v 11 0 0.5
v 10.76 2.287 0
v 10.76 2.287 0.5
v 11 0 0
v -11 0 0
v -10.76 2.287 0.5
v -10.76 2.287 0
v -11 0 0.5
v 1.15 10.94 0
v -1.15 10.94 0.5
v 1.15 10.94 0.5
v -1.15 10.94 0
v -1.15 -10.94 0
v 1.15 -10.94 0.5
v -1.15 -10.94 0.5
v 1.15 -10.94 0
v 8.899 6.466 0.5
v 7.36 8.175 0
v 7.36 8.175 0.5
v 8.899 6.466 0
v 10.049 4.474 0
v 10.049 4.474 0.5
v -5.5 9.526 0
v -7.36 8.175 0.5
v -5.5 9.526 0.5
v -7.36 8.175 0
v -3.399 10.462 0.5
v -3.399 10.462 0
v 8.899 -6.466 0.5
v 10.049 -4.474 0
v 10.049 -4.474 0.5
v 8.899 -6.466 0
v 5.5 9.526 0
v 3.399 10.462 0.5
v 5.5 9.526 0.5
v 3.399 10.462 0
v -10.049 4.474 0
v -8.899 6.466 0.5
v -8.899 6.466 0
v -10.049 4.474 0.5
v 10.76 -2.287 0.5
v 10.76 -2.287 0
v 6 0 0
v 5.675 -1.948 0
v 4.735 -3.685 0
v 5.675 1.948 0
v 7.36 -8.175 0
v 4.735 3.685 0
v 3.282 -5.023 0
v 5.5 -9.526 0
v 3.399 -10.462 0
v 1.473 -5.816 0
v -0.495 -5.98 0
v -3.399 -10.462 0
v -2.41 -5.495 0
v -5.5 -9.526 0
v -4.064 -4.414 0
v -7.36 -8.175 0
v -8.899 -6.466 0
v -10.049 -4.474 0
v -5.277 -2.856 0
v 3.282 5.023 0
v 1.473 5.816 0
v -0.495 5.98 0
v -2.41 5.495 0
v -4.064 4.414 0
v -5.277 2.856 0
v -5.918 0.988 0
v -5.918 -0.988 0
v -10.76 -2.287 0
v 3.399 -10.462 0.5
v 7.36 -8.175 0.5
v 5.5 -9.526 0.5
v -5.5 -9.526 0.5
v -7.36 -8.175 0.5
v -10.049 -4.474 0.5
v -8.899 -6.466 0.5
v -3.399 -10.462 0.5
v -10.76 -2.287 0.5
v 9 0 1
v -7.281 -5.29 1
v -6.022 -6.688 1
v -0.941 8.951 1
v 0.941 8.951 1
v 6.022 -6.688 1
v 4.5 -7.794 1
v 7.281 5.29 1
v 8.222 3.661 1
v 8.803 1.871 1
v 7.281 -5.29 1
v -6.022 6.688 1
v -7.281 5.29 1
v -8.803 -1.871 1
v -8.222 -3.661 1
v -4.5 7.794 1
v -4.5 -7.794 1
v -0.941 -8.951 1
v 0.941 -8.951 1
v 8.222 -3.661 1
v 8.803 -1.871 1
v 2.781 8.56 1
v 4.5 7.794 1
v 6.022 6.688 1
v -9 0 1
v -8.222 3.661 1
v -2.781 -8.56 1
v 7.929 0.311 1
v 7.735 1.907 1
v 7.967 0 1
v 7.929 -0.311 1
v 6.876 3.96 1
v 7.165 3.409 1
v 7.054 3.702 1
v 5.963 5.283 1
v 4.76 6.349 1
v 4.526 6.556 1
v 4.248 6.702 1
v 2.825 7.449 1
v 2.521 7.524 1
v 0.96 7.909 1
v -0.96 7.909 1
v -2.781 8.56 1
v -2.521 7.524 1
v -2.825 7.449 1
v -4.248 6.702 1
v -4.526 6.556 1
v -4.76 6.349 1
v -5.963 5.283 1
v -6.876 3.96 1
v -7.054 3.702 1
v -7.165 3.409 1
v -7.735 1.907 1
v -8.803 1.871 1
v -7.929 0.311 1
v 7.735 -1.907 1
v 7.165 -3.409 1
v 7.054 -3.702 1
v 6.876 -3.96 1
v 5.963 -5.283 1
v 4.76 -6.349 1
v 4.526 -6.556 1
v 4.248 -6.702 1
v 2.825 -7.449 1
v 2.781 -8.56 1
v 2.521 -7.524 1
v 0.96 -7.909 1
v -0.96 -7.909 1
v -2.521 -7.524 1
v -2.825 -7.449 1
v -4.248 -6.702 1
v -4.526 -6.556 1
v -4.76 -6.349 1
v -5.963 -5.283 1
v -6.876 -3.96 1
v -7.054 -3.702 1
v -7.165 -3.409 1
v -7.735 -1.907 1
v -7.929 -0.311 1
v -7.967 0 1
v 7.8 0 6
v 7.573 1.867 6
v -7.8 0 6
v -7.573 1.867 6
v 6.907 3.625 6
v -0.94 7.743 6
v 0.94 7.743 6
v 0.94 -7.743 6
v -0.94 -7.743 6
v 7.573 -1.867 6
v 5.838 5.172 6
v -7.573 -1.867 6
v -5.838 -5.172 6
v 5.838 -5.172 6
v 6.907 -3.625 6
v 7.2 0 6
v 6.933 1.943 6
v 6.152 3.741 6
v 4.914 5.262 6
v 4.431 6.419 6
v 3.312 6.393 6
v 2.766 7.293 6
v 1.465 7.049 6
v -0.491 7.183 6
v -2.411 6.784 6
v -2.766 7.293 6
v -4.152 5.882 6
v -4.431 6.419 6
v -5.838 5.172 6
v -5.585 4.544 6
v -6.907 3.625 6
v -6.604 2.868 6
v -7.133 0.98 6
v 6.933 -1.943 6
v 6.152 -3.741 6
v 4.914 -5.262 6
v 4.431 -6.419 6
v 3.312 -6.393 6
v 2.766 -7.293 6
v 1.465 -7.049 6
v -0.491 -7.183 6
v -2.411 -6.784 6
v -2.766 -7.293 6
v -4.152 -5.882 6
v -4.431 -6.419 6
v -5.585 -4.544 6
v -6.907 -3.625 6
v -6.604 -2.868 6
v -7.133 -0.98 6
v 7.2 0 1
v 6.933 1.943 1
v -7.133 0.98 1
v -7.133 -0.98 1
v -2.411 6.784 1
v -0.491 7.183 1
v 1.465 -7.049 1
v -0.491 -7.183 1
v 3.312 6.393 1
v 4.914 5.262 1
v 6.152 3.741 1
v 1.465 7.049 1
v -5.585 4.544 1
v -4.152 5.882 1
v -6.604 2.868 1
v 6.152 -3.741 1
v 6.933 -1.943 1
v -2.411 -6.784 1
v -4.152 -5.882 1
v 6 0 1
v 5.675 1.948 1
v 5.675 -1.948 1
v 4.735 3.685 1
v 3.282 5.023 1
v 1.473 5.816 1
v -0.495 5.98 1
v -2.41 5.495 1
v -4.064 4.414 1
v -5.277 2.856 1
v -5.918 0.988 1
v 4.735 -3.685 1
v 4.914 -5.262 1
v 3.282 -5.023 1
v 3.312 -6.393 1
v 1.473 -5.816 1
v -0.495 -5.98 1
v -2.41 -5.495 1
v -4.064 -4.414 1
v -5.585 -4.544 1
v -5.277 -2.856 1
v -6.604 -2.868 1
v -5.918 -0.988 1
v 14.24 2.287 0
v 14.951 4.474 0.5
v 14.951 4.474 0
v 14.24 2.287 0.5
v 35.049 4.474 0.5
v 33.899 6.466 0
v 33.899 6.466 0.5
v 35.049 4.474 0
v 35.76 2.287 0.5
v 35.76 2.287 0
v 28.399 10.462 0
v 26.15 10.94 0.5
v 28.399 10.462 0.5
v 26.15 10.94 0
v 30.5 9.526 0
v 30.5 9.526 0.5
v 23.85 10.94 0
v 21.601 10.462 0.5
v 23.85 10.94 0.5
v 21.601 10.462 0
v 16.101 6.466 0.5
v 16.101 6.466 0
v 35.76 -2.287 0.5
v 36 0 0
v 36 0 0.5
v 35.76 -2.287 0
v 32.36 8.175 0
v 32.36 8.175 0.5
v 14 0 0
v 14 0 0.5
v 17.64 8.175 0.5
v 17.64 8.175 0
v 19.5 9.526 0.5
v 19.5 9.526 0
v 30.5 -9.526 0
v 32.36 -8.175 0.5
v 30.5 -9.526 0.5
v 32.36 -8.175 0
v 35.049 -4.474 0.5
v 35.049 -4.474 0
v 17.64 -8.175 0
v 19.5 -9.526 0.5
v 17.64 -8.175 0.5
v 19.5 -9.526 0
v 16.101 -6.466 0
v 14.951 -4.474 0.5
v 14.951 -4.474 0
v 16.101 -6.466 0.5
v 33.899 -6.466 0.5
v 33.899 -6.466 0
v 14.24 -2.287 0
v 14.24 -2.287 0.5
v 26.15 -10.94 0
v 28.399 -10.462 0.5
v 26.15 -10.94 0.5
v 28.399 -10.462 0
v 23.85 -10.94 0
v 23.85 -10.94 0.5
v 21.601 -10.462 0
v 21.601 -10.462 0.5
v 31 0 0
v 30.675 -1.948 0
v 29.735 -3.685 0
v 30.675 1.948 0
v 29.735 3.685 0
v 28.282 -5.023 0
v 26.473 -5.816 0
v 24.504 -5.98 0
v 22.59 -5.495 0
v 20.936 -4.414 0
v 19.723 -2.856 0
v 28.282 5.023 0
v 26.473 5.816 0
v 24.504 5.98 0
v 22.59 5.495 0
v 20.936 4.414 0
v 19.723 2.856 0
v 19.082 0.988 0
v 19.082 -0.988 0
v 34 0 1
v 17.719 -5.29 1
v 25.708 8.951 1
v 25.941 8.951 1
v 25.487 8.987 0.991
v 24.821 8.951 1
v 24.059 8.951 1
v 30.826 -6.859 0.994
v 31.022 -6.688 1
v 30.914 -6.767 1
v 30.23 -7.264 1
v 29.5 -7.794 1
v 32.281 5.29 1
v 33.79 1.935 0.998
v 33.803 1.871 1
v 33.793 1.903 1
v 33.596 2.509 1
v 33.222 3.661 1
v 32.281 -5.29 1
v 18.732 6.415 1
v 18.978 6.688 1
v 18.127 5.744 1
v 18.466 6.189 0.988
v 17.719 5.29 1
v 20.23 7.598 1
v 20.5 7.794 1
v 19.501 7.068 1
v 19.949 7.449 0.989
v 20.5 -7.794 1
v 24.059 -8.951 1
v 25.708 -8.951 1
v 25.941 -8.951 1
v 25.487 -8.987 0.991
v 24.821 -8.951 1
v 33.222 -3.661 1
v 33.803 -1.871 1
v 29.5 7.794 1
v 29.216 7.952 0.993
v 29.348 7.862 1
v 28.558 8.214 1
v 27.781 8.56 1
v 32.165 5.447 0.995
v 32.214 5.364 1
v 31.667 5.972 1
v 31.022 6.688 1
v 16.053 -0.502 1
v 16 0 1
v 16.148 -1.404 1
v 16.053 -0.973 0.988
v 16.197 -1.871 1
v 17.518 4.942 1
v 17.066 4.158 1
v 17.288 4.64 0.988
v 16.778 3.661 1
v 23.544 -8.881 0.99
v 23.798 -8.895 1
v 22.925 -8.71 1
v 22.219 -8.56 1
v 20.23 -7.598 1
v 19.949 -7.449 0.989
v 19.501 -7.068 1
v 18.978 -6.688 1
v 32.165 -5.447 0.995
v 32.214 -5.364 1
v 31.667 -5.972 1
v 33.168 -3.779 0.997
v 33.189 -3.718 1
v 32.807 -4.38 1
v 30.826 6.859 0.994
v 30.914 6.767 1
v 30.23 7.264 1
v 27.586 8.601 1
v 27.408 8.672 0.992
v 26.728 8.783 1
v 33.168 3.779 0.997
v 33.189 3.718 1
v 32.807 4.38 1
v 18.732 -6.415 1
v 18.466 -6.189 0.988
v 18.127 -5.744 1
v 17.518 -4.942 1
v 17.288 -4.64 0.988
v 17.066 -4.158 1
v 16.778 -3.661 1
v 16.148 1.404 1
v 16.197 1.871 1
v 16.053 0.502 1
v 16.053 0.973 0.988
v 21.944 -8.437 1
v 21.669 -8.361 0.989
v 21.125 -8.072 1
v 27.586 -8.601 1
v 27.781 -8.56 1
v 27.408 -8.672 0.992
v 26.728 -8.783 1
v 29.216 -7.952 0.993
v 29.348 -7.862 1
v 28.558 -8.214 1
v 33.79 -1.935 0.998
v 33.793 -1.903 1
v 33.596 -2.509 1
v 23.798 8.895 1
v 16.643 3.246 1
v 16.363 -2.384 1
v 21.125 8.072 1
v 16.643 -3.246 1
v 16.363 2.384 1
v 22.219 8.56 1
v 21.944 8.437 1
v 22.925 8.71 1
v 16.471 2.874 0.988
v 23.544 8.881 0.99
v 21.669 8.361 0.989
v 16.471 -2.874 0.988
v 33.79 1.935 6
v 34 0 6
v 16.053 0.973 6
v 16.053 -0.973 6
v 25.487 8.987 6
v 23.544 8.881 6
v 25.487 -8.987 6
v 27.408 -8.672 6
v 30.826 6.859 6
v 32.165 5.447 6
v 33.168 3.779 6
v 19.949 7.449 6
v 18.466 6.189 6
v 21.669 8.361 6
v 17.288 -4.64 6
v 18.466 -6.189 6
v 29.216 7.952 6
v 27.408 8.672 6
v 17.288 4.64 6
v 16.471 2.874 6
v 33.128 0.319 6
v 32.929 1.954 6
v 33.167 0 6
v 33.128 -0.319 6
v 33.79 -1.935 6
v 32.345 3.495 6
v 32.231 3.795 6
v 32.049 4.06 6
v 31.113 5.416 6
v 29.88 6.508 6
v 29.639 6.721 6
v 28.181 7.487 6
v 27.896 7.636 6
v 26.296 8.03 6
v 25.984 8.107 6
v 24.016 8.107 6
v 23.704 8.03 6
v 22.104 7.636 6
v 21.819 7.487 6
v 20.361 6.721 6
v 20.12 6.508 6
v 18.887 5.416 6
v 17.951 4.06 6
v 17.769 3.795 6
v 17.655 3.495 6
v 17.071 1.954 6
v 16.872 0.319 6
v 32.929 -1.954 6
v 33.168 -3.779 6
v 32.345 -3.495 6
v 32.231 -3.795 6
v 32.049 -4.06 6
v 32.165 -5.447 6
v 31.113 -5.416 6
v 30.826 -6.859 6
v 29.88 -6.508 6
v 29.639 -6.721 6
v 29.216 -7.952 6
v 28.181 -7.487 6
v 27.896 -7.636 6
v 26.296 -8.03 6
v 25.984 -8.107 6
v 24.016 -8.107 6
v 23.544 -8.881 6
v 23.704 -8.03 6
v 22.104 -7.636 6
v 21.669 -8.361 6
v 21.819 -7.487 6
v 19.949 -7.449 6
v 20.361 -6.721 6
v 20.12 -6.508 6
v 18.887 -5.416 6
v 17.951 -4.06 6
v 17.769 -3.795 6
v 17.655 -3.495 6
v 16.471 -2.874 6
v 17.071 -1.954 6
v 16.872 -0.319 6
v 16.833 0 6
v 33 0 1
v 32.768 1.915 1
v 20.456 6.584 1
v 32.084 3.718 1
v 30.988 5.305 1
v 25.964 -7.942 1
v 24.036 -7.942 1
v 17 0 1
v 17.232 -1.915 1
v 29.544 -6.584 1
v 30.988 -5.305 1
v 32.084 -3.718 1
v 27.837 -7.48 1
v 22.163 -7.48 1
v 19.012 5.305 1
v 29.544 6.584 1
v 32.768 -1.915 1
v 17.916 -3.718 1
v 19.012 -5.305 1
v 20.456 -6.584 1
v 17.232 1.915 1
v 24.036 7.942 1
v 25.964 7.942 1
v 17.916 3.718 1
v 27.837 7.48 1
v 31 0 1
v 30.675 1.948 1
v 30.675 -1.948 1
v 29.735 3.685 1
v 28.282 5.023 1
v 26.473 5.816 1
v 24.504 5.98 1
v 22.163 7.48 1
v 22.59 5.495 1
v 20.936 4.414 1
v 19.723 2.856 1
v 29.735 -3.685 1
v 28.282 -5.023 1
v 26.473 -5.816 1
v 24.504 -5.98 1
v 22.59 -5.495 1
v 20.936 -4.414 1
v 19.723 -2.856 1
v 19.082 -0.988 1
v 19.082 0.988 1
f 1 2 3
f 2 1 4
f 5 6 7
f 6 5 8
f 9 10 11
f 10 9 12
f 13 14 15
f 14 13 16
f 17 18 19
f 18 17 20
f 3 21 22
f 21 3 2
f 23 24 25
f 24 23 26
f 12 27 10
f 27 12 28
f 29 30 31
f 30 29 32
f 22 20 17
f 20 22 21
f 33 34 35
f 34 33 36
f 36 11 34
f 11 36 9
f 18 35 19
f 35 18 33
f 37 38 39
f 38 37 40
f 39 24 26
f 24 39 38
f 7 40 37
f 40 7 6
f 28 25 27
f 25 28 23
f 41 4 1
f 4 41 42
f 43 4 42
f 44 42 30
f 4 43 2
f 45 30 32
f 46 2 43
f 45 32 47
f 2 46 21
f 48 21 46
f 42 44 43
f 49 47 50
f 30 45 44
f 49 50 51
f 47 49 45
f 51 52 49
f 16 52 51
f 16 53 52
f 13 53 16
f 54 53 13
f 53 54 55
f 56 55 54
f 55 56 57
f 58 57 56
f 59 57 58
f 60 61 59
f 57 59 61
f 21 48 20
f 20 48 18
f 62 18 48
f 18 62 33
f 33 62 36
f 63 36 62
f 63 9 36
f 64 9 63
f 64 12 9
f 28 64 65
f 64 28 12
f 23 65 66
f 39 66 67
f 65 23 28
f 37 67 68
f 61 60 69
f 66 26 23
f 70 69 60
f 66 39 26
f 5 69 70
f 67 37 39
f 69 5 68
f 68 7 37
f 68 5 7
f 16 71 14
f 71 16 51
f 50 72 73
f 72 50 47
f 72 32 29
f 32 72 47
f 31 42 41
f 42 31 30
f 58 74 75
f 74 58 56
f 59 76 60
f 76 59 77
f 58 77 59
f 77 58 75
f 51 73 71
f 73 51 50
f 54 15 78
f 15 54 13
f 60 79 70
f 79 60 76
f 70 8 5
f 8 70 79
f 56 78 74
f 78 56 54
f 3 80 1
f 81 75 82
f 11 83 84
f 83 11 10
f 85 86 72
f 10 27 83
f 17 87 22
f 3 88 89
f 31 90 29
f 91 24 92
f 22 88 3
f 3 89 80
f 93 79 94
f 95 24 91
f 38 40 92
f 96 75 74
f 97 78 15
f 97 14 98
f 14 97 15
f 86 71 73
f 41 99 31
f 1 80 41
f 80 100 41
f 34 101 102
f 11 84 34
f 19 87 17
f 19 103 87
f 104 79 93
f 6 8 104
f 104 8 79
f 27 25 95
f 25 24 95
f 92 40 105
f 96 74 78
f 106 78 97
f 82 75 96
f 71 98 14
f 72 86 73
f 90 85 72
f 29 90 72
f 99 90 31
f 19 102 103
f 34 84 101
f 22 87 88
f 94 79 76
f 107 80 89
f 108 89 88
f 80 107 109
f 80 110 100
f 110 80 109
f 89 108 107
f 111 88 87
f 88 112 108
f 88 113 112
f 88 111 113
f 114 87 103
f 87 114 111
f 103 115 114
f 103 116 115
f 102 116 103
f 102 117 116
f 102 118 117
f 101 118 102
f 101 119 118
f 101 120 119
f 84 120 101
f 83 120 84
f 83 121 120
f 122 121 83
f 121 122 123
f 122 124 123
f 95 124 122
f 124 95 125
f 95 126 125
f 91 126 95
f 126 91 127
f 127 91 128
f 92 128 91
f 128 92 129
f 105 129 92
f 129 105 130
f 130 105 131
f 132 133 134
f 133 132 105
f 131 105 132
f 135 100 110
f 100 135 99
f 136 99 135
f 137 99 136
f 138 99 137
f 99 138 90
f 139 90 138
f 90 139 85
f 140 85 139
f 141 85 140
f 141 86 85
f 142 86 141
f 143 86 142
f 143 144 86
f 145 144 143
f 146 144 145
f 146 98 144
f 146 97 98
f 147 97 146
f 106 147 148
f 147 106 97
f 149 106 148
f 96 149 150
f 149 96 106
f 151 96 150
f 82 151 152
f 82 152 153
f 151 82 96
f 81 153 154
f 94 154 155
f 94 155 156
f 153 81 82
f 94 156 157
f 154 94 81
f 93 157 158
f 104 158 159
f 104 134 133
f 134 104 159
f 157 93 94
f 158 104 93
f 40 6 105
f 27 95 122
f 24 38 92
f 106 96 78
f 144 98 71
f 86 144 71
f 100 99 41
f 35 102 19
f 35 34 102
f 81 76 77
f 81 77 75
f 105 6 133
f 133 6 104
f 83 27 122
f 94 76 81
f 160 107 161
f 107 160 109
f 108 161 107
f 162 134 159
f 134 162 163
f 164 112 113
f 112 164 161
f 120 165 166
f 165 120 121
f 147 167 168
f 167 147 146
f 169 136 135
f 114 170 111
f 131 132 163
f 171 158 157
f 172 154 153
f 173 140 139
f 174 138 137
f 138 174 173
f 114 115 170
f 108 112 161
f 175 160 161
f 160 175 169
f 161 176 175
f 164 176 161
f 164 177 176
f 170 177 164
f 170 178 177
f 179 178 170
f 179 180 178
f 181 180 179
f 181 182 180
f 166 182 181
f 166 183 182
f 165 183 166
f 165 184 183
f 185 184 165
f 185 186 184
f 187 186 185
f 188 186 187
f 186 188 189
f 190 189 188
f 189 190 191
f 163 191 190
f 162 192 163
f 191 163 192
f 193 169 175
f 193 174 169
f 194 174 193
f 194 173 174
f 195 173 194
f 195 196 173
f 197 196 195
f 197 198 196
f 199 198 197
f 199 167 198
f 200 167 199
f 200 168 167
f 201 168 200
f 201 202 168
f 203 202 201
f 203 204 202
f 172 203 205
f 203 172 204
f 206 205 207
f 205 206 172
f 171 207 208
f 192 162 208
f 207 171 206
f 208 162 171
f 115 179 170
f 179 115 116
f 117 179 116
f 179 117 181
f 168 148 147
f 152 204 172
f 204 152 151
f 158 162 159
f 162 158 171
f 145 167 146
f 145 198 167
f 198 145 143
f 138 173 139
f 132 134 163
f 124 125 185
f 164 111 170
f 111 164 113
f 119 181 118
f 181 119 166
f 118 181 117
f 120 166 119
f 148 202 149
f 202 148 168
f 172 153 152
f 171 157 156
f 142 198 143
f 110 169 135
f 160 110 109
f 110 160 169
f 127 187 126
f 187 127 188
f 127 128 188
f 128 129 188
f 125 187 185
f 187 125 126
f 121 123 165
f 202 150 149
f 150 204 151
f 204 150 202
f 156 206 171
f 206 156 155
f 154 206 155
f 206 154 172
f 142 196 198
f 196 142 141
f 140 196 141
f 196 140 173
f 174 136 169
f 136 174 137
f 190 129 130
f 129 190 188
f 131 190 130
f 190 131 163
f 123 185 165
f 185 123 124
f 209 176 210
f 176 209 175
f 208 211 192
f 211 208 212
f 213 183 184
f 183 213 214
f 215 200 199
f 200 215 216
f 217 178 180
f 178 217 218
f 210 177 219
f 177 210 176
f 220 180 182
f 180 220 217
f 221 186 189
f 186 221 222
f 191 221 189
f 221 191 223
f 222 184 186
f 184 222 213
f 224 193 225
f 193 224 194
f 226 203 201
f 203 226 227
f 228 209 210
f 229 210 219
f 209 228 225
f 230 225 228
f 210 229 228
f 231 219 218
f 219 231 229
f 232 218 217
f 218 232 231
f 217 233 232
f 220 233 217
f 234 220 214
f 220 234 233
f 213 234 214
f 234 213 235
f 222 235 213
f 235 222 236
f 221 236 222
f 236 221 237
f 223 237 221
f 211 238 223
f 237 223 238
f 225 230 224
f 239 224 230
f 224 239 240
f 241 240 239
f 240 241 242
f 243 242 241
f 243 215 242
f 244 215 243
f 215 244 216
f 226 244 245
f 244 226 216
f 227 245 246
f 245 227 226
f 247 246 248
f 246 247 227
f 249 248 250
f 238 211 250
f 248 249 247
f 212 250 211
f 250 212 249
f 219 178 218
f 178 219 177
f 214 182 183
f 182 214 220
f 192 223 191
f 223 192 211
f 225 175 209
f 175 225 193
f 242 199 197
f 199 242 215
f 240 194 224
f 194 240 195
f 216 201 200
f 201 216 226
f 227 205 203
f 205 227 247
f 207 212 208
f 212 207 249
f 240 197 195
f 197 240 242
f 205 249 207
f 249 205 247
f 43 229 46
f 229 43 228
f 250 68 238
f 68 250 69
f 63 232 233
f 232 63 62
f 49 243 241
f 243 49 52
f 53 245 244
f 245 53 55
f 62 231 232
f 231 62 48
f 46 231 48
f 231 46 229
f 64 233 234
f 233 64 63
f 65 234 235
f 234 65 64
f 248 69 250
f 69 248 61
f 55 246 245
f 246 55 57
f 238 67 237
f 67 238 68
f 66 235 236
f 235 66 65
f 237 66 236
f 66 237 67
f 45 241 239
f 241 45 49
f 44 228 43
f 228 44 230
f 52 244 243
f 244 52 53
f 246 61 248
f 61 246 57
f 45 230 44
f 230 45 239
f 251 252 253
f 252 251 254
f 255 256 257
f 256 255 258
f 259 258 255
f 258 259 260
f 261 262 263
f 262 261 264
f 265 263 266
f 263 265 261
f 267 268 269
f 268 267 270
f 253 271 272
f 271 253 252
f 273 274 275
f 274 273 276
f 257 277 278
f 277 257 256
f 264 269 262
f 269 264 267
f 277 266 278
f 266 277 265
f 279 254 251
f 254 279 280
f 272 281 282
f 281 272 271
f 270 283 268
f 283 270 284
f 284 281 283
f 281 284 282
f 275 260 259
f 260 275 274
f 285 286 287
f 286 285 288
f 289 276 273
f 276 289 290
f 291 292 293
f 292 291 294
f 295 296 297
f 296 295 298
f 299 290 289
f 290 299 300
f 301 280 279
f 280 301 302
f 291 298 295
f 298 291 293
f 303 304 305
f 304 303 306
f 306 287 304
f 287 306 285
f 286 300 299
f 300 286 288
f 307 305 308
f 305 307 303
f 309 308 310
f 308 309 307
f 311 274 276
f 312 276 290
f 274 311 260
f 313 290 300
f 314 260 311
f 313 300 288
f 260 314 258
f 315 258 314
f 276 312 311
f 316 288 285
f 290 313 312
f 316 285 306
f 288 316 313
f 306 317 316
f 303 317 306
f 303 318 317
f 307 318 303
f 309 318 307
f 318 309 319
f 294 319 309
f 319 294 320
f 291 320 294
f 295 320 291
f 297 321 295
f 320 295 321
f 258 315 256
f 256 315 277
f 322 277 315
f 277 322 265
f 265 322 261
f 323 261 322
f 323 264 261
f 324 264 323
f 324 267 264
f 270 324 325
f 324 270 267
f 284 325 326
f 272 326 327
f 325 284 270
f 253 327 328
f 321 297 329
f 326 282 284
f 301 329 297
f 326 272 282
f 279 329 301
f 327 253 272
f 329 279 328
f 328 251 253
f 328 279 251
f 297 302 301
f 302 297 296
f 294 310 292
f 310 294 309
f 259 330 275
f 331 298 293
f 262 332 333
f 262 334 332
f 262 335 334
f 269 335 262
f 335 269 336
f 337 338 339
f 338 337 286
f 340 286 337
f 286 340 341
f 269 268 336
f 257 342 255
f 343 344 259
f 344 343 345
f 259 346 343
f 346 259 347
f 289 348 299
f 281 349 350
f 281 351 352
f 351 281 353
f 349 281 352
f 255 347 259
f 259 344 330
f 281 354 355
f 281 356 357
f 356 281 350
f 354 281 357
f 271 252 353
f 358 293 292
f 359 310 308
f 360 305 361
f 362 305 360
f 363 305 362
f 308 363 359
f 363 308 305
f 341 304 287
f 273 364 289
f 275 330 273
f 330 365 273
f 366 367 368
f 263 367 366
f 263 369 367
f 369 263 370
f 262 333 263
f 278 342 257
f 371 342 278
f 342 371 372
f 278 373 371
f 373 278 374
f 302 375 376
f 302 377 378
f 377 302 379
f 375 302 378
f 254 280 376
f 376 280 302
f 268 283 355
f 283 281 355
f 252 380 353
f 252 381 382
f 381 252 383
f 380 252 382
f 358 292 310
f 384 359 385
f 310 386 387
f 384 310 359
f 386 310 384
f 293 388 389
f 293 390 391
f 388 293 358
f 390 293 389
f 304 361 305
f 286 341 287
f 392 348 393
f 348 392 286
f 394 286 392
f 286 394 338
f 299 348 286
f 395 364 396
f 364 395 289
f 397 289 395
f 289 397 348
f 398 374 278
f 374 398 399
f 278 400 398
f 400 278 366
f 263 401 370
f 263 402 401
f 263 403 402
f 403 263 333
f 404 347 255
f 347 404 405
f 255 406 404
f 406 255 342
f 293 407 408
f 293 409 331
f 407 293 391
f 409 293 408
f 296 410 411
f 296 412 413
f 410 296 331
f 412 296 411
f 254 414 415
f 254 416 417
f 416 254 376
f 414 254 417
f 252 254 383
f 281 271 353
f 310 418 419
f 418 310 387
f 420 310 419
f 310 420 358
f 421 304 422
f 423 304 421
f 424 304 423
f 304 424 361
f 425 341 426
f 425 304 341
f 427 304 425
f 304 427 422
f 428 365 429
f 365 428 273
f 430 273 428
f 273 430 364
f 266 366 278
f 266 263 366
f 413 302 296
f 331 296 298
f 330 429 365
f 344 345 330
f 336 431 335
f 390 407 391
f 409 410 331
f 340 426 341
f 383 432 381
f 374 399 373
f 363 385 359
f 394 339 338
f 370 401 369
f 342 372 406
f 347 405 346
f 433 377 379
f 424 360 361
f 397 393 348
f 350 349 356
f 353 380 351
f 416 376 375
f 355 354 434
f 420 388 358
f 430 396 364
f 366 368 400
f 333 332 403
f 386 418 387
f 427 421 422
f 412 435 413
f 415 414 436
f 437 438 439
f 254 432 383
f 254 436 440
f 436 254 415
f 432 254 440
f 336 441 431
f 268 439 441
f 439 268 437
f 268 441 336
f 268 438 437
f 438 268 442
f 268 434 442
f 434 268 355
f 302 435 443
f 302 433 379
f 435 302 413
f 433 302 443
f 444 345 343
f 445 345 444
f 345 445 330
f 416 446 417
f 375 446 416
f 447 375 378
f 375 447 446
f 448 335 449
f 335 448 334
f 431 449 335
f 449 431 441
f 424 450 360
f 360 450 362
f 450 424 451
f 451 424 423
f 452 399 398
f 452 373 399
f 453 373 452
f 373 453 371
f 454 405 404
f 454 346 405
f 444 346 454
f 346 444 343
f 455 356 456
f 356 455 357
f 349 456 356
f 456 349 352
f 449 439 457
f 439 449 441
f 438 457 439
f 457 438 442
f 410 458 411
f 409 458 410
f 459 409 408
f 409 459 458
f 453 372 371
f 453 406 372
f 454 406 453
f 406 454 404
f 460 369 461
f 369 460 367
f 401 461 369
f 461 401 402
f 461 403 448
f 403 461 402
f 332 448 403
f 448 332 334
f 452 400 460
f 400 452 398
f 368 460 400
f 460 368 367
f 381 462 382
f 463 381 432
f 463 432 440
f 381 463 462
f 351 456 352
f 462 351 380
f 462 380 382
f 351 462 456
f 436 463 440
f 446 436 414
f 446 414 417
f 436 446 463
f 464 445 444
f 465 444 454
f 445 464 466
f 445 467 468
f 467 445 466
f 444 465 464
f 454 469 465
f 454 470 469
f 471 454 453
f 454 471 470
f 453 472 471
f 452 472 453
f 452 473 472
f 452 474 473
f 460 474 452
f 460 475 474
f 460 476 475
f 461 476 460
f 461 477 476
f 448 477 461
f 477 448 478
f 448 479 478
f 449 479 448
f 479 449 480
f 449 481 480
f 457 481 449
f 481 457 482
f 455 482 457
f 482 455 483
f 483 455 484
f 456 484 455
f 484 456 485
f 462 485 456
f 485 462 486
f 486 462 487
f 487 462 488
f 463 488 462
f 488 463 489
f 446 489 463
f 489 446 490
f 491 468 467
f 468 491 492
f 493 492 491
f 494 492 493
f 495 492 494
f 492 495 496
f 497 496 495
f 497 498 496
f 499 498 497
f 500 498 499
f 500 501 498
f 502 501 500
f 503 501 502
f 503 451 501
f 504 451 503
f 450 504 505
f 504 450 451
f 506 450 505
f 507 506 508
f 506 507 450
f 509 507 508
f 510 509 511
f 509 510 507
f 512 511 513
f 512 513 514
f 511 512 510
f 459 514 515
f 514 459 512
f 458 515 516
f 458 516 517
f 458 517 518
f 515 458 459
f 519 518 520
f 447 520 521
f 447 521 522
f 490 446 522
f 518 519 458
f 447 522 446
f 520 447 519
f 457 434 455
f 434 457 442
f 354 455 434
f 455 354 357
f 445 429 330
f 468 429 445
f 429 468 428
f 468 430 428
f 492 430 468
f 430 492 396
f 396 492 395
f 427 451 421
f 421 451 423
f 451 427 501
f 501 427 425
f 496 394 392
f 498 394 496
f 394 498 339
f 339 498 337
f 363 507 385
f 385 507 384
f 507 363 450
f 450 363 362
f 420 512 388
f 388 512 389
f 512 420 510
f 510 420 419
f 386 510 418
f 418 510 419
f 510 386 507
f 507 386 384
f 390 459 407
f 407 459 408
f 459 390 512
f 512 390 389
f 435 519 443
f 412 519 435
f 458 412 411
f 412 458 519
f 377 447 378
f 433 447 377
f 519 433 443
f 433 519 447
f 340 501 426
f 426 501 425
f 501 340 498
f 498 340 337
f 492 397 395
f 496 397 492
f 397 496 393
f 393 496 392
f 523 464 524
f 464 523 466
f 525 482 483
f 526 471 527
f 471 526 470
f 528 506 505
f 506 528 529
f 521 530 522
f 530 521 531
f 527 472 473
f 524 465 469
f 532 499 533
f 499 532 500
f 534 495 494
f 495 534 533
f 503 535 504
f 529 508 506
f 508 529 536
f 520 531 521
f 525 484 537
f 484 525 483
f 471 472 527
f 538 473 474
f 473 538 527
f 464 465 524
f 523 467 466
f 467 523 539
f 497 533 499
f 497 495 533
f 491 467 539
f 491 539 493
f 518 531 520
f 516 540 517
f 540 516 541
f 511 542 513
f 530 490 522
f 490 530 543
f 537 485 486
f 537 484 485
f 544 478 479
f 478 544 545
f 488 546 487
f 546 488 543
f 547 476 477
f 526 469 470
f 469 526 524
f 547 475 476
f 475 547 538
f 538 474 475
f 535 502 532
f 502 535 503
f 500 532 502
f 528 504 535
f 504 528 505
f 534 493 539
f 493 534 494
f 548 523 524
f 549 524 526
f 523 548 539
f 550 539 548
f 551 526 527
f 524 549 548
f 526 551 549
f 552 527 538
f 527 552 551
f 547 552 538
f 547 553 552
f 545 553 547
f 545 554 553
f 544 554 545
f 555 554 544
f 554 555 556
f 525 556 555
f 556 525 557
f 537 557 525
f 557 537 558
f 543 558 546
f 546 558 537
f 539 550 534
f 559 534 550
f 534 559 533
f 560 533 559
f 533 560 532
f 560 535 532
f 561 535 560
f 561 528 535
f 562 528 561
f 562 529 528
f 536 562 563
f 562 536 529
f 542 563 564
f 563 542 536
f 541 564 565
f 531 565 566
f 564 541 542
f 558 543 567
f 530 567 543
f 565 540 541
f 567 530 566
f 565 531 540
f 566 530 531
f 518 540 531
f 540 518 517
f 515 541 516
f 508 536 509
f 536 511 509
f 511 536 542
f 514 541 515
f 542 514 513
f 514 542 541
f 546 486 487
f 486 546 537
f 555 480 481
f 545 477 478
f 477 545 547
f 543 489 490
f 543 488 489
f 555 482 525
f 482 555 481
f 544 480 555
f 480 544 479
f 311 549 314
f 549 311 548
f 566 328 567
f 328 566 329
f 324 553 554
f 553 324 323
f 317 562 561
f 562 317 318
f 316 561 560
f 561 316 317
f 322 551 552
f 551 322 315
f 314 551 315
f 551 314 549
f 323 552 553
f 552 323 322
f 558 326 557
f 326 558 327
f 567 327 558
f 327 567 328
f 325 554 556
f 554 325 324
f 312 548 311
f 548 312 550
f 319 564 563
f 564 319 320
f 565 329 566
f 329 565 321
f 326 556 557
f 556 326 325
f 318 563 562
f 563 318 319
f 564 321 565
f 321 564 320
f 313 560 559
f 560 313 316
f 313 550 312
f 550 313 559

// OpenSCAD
wall = 2;
slop = .2;

bearing_rad = 14/2;
bearing_thick=5;

flange_rad = bearing_rad+wall*2;

belt_thick = 6;

idler_flange_inner();

translate([25,0,0]) idler_flange_outer();

module idler_flange_inner(){
    difference(){
        union(){
            cylinder(r=flange_rad, h=wall/4);
            translate([0,0,wall/4]) cylinder(r1=flange_rad, r2=flange_rad-wall, h=wall/4);
            cylinder(r1=bearing_rad+wall/2, r2=bearing_rad+wall/2-slop, h=wall/2+bearing_thick);
        }
        translate([0,0,wall/2]) cylinder(r=bearing_rad+slop, h=bearing_thick+1);
        translate([0,0,-1]) cylinder(r=bearing_rad-wall/2, h=bearing_thick);
    }
}

module idler_flange_outer(){
    difference(){
        union(){
            cylinder(r=flange_rad, h=wall/4);
            translate([0,0,wall/4]) cylinder(r1=flange_rad, r2=flange_rad-wall, h=wall/4);
            cylinder(r=bearing_rad+wall, h=wall/2+bearing_thick);
        }
        translate([0,0,wall/2]) cylinder(r1=bearing_rad+wall/2, r2=bearing_rad+wall/2+slop, h=bearing_thick+1);
        translate([0,0,-1]) cylinder(r=bearing_rad-wall/2, h=bearing_thick);
    }
}
